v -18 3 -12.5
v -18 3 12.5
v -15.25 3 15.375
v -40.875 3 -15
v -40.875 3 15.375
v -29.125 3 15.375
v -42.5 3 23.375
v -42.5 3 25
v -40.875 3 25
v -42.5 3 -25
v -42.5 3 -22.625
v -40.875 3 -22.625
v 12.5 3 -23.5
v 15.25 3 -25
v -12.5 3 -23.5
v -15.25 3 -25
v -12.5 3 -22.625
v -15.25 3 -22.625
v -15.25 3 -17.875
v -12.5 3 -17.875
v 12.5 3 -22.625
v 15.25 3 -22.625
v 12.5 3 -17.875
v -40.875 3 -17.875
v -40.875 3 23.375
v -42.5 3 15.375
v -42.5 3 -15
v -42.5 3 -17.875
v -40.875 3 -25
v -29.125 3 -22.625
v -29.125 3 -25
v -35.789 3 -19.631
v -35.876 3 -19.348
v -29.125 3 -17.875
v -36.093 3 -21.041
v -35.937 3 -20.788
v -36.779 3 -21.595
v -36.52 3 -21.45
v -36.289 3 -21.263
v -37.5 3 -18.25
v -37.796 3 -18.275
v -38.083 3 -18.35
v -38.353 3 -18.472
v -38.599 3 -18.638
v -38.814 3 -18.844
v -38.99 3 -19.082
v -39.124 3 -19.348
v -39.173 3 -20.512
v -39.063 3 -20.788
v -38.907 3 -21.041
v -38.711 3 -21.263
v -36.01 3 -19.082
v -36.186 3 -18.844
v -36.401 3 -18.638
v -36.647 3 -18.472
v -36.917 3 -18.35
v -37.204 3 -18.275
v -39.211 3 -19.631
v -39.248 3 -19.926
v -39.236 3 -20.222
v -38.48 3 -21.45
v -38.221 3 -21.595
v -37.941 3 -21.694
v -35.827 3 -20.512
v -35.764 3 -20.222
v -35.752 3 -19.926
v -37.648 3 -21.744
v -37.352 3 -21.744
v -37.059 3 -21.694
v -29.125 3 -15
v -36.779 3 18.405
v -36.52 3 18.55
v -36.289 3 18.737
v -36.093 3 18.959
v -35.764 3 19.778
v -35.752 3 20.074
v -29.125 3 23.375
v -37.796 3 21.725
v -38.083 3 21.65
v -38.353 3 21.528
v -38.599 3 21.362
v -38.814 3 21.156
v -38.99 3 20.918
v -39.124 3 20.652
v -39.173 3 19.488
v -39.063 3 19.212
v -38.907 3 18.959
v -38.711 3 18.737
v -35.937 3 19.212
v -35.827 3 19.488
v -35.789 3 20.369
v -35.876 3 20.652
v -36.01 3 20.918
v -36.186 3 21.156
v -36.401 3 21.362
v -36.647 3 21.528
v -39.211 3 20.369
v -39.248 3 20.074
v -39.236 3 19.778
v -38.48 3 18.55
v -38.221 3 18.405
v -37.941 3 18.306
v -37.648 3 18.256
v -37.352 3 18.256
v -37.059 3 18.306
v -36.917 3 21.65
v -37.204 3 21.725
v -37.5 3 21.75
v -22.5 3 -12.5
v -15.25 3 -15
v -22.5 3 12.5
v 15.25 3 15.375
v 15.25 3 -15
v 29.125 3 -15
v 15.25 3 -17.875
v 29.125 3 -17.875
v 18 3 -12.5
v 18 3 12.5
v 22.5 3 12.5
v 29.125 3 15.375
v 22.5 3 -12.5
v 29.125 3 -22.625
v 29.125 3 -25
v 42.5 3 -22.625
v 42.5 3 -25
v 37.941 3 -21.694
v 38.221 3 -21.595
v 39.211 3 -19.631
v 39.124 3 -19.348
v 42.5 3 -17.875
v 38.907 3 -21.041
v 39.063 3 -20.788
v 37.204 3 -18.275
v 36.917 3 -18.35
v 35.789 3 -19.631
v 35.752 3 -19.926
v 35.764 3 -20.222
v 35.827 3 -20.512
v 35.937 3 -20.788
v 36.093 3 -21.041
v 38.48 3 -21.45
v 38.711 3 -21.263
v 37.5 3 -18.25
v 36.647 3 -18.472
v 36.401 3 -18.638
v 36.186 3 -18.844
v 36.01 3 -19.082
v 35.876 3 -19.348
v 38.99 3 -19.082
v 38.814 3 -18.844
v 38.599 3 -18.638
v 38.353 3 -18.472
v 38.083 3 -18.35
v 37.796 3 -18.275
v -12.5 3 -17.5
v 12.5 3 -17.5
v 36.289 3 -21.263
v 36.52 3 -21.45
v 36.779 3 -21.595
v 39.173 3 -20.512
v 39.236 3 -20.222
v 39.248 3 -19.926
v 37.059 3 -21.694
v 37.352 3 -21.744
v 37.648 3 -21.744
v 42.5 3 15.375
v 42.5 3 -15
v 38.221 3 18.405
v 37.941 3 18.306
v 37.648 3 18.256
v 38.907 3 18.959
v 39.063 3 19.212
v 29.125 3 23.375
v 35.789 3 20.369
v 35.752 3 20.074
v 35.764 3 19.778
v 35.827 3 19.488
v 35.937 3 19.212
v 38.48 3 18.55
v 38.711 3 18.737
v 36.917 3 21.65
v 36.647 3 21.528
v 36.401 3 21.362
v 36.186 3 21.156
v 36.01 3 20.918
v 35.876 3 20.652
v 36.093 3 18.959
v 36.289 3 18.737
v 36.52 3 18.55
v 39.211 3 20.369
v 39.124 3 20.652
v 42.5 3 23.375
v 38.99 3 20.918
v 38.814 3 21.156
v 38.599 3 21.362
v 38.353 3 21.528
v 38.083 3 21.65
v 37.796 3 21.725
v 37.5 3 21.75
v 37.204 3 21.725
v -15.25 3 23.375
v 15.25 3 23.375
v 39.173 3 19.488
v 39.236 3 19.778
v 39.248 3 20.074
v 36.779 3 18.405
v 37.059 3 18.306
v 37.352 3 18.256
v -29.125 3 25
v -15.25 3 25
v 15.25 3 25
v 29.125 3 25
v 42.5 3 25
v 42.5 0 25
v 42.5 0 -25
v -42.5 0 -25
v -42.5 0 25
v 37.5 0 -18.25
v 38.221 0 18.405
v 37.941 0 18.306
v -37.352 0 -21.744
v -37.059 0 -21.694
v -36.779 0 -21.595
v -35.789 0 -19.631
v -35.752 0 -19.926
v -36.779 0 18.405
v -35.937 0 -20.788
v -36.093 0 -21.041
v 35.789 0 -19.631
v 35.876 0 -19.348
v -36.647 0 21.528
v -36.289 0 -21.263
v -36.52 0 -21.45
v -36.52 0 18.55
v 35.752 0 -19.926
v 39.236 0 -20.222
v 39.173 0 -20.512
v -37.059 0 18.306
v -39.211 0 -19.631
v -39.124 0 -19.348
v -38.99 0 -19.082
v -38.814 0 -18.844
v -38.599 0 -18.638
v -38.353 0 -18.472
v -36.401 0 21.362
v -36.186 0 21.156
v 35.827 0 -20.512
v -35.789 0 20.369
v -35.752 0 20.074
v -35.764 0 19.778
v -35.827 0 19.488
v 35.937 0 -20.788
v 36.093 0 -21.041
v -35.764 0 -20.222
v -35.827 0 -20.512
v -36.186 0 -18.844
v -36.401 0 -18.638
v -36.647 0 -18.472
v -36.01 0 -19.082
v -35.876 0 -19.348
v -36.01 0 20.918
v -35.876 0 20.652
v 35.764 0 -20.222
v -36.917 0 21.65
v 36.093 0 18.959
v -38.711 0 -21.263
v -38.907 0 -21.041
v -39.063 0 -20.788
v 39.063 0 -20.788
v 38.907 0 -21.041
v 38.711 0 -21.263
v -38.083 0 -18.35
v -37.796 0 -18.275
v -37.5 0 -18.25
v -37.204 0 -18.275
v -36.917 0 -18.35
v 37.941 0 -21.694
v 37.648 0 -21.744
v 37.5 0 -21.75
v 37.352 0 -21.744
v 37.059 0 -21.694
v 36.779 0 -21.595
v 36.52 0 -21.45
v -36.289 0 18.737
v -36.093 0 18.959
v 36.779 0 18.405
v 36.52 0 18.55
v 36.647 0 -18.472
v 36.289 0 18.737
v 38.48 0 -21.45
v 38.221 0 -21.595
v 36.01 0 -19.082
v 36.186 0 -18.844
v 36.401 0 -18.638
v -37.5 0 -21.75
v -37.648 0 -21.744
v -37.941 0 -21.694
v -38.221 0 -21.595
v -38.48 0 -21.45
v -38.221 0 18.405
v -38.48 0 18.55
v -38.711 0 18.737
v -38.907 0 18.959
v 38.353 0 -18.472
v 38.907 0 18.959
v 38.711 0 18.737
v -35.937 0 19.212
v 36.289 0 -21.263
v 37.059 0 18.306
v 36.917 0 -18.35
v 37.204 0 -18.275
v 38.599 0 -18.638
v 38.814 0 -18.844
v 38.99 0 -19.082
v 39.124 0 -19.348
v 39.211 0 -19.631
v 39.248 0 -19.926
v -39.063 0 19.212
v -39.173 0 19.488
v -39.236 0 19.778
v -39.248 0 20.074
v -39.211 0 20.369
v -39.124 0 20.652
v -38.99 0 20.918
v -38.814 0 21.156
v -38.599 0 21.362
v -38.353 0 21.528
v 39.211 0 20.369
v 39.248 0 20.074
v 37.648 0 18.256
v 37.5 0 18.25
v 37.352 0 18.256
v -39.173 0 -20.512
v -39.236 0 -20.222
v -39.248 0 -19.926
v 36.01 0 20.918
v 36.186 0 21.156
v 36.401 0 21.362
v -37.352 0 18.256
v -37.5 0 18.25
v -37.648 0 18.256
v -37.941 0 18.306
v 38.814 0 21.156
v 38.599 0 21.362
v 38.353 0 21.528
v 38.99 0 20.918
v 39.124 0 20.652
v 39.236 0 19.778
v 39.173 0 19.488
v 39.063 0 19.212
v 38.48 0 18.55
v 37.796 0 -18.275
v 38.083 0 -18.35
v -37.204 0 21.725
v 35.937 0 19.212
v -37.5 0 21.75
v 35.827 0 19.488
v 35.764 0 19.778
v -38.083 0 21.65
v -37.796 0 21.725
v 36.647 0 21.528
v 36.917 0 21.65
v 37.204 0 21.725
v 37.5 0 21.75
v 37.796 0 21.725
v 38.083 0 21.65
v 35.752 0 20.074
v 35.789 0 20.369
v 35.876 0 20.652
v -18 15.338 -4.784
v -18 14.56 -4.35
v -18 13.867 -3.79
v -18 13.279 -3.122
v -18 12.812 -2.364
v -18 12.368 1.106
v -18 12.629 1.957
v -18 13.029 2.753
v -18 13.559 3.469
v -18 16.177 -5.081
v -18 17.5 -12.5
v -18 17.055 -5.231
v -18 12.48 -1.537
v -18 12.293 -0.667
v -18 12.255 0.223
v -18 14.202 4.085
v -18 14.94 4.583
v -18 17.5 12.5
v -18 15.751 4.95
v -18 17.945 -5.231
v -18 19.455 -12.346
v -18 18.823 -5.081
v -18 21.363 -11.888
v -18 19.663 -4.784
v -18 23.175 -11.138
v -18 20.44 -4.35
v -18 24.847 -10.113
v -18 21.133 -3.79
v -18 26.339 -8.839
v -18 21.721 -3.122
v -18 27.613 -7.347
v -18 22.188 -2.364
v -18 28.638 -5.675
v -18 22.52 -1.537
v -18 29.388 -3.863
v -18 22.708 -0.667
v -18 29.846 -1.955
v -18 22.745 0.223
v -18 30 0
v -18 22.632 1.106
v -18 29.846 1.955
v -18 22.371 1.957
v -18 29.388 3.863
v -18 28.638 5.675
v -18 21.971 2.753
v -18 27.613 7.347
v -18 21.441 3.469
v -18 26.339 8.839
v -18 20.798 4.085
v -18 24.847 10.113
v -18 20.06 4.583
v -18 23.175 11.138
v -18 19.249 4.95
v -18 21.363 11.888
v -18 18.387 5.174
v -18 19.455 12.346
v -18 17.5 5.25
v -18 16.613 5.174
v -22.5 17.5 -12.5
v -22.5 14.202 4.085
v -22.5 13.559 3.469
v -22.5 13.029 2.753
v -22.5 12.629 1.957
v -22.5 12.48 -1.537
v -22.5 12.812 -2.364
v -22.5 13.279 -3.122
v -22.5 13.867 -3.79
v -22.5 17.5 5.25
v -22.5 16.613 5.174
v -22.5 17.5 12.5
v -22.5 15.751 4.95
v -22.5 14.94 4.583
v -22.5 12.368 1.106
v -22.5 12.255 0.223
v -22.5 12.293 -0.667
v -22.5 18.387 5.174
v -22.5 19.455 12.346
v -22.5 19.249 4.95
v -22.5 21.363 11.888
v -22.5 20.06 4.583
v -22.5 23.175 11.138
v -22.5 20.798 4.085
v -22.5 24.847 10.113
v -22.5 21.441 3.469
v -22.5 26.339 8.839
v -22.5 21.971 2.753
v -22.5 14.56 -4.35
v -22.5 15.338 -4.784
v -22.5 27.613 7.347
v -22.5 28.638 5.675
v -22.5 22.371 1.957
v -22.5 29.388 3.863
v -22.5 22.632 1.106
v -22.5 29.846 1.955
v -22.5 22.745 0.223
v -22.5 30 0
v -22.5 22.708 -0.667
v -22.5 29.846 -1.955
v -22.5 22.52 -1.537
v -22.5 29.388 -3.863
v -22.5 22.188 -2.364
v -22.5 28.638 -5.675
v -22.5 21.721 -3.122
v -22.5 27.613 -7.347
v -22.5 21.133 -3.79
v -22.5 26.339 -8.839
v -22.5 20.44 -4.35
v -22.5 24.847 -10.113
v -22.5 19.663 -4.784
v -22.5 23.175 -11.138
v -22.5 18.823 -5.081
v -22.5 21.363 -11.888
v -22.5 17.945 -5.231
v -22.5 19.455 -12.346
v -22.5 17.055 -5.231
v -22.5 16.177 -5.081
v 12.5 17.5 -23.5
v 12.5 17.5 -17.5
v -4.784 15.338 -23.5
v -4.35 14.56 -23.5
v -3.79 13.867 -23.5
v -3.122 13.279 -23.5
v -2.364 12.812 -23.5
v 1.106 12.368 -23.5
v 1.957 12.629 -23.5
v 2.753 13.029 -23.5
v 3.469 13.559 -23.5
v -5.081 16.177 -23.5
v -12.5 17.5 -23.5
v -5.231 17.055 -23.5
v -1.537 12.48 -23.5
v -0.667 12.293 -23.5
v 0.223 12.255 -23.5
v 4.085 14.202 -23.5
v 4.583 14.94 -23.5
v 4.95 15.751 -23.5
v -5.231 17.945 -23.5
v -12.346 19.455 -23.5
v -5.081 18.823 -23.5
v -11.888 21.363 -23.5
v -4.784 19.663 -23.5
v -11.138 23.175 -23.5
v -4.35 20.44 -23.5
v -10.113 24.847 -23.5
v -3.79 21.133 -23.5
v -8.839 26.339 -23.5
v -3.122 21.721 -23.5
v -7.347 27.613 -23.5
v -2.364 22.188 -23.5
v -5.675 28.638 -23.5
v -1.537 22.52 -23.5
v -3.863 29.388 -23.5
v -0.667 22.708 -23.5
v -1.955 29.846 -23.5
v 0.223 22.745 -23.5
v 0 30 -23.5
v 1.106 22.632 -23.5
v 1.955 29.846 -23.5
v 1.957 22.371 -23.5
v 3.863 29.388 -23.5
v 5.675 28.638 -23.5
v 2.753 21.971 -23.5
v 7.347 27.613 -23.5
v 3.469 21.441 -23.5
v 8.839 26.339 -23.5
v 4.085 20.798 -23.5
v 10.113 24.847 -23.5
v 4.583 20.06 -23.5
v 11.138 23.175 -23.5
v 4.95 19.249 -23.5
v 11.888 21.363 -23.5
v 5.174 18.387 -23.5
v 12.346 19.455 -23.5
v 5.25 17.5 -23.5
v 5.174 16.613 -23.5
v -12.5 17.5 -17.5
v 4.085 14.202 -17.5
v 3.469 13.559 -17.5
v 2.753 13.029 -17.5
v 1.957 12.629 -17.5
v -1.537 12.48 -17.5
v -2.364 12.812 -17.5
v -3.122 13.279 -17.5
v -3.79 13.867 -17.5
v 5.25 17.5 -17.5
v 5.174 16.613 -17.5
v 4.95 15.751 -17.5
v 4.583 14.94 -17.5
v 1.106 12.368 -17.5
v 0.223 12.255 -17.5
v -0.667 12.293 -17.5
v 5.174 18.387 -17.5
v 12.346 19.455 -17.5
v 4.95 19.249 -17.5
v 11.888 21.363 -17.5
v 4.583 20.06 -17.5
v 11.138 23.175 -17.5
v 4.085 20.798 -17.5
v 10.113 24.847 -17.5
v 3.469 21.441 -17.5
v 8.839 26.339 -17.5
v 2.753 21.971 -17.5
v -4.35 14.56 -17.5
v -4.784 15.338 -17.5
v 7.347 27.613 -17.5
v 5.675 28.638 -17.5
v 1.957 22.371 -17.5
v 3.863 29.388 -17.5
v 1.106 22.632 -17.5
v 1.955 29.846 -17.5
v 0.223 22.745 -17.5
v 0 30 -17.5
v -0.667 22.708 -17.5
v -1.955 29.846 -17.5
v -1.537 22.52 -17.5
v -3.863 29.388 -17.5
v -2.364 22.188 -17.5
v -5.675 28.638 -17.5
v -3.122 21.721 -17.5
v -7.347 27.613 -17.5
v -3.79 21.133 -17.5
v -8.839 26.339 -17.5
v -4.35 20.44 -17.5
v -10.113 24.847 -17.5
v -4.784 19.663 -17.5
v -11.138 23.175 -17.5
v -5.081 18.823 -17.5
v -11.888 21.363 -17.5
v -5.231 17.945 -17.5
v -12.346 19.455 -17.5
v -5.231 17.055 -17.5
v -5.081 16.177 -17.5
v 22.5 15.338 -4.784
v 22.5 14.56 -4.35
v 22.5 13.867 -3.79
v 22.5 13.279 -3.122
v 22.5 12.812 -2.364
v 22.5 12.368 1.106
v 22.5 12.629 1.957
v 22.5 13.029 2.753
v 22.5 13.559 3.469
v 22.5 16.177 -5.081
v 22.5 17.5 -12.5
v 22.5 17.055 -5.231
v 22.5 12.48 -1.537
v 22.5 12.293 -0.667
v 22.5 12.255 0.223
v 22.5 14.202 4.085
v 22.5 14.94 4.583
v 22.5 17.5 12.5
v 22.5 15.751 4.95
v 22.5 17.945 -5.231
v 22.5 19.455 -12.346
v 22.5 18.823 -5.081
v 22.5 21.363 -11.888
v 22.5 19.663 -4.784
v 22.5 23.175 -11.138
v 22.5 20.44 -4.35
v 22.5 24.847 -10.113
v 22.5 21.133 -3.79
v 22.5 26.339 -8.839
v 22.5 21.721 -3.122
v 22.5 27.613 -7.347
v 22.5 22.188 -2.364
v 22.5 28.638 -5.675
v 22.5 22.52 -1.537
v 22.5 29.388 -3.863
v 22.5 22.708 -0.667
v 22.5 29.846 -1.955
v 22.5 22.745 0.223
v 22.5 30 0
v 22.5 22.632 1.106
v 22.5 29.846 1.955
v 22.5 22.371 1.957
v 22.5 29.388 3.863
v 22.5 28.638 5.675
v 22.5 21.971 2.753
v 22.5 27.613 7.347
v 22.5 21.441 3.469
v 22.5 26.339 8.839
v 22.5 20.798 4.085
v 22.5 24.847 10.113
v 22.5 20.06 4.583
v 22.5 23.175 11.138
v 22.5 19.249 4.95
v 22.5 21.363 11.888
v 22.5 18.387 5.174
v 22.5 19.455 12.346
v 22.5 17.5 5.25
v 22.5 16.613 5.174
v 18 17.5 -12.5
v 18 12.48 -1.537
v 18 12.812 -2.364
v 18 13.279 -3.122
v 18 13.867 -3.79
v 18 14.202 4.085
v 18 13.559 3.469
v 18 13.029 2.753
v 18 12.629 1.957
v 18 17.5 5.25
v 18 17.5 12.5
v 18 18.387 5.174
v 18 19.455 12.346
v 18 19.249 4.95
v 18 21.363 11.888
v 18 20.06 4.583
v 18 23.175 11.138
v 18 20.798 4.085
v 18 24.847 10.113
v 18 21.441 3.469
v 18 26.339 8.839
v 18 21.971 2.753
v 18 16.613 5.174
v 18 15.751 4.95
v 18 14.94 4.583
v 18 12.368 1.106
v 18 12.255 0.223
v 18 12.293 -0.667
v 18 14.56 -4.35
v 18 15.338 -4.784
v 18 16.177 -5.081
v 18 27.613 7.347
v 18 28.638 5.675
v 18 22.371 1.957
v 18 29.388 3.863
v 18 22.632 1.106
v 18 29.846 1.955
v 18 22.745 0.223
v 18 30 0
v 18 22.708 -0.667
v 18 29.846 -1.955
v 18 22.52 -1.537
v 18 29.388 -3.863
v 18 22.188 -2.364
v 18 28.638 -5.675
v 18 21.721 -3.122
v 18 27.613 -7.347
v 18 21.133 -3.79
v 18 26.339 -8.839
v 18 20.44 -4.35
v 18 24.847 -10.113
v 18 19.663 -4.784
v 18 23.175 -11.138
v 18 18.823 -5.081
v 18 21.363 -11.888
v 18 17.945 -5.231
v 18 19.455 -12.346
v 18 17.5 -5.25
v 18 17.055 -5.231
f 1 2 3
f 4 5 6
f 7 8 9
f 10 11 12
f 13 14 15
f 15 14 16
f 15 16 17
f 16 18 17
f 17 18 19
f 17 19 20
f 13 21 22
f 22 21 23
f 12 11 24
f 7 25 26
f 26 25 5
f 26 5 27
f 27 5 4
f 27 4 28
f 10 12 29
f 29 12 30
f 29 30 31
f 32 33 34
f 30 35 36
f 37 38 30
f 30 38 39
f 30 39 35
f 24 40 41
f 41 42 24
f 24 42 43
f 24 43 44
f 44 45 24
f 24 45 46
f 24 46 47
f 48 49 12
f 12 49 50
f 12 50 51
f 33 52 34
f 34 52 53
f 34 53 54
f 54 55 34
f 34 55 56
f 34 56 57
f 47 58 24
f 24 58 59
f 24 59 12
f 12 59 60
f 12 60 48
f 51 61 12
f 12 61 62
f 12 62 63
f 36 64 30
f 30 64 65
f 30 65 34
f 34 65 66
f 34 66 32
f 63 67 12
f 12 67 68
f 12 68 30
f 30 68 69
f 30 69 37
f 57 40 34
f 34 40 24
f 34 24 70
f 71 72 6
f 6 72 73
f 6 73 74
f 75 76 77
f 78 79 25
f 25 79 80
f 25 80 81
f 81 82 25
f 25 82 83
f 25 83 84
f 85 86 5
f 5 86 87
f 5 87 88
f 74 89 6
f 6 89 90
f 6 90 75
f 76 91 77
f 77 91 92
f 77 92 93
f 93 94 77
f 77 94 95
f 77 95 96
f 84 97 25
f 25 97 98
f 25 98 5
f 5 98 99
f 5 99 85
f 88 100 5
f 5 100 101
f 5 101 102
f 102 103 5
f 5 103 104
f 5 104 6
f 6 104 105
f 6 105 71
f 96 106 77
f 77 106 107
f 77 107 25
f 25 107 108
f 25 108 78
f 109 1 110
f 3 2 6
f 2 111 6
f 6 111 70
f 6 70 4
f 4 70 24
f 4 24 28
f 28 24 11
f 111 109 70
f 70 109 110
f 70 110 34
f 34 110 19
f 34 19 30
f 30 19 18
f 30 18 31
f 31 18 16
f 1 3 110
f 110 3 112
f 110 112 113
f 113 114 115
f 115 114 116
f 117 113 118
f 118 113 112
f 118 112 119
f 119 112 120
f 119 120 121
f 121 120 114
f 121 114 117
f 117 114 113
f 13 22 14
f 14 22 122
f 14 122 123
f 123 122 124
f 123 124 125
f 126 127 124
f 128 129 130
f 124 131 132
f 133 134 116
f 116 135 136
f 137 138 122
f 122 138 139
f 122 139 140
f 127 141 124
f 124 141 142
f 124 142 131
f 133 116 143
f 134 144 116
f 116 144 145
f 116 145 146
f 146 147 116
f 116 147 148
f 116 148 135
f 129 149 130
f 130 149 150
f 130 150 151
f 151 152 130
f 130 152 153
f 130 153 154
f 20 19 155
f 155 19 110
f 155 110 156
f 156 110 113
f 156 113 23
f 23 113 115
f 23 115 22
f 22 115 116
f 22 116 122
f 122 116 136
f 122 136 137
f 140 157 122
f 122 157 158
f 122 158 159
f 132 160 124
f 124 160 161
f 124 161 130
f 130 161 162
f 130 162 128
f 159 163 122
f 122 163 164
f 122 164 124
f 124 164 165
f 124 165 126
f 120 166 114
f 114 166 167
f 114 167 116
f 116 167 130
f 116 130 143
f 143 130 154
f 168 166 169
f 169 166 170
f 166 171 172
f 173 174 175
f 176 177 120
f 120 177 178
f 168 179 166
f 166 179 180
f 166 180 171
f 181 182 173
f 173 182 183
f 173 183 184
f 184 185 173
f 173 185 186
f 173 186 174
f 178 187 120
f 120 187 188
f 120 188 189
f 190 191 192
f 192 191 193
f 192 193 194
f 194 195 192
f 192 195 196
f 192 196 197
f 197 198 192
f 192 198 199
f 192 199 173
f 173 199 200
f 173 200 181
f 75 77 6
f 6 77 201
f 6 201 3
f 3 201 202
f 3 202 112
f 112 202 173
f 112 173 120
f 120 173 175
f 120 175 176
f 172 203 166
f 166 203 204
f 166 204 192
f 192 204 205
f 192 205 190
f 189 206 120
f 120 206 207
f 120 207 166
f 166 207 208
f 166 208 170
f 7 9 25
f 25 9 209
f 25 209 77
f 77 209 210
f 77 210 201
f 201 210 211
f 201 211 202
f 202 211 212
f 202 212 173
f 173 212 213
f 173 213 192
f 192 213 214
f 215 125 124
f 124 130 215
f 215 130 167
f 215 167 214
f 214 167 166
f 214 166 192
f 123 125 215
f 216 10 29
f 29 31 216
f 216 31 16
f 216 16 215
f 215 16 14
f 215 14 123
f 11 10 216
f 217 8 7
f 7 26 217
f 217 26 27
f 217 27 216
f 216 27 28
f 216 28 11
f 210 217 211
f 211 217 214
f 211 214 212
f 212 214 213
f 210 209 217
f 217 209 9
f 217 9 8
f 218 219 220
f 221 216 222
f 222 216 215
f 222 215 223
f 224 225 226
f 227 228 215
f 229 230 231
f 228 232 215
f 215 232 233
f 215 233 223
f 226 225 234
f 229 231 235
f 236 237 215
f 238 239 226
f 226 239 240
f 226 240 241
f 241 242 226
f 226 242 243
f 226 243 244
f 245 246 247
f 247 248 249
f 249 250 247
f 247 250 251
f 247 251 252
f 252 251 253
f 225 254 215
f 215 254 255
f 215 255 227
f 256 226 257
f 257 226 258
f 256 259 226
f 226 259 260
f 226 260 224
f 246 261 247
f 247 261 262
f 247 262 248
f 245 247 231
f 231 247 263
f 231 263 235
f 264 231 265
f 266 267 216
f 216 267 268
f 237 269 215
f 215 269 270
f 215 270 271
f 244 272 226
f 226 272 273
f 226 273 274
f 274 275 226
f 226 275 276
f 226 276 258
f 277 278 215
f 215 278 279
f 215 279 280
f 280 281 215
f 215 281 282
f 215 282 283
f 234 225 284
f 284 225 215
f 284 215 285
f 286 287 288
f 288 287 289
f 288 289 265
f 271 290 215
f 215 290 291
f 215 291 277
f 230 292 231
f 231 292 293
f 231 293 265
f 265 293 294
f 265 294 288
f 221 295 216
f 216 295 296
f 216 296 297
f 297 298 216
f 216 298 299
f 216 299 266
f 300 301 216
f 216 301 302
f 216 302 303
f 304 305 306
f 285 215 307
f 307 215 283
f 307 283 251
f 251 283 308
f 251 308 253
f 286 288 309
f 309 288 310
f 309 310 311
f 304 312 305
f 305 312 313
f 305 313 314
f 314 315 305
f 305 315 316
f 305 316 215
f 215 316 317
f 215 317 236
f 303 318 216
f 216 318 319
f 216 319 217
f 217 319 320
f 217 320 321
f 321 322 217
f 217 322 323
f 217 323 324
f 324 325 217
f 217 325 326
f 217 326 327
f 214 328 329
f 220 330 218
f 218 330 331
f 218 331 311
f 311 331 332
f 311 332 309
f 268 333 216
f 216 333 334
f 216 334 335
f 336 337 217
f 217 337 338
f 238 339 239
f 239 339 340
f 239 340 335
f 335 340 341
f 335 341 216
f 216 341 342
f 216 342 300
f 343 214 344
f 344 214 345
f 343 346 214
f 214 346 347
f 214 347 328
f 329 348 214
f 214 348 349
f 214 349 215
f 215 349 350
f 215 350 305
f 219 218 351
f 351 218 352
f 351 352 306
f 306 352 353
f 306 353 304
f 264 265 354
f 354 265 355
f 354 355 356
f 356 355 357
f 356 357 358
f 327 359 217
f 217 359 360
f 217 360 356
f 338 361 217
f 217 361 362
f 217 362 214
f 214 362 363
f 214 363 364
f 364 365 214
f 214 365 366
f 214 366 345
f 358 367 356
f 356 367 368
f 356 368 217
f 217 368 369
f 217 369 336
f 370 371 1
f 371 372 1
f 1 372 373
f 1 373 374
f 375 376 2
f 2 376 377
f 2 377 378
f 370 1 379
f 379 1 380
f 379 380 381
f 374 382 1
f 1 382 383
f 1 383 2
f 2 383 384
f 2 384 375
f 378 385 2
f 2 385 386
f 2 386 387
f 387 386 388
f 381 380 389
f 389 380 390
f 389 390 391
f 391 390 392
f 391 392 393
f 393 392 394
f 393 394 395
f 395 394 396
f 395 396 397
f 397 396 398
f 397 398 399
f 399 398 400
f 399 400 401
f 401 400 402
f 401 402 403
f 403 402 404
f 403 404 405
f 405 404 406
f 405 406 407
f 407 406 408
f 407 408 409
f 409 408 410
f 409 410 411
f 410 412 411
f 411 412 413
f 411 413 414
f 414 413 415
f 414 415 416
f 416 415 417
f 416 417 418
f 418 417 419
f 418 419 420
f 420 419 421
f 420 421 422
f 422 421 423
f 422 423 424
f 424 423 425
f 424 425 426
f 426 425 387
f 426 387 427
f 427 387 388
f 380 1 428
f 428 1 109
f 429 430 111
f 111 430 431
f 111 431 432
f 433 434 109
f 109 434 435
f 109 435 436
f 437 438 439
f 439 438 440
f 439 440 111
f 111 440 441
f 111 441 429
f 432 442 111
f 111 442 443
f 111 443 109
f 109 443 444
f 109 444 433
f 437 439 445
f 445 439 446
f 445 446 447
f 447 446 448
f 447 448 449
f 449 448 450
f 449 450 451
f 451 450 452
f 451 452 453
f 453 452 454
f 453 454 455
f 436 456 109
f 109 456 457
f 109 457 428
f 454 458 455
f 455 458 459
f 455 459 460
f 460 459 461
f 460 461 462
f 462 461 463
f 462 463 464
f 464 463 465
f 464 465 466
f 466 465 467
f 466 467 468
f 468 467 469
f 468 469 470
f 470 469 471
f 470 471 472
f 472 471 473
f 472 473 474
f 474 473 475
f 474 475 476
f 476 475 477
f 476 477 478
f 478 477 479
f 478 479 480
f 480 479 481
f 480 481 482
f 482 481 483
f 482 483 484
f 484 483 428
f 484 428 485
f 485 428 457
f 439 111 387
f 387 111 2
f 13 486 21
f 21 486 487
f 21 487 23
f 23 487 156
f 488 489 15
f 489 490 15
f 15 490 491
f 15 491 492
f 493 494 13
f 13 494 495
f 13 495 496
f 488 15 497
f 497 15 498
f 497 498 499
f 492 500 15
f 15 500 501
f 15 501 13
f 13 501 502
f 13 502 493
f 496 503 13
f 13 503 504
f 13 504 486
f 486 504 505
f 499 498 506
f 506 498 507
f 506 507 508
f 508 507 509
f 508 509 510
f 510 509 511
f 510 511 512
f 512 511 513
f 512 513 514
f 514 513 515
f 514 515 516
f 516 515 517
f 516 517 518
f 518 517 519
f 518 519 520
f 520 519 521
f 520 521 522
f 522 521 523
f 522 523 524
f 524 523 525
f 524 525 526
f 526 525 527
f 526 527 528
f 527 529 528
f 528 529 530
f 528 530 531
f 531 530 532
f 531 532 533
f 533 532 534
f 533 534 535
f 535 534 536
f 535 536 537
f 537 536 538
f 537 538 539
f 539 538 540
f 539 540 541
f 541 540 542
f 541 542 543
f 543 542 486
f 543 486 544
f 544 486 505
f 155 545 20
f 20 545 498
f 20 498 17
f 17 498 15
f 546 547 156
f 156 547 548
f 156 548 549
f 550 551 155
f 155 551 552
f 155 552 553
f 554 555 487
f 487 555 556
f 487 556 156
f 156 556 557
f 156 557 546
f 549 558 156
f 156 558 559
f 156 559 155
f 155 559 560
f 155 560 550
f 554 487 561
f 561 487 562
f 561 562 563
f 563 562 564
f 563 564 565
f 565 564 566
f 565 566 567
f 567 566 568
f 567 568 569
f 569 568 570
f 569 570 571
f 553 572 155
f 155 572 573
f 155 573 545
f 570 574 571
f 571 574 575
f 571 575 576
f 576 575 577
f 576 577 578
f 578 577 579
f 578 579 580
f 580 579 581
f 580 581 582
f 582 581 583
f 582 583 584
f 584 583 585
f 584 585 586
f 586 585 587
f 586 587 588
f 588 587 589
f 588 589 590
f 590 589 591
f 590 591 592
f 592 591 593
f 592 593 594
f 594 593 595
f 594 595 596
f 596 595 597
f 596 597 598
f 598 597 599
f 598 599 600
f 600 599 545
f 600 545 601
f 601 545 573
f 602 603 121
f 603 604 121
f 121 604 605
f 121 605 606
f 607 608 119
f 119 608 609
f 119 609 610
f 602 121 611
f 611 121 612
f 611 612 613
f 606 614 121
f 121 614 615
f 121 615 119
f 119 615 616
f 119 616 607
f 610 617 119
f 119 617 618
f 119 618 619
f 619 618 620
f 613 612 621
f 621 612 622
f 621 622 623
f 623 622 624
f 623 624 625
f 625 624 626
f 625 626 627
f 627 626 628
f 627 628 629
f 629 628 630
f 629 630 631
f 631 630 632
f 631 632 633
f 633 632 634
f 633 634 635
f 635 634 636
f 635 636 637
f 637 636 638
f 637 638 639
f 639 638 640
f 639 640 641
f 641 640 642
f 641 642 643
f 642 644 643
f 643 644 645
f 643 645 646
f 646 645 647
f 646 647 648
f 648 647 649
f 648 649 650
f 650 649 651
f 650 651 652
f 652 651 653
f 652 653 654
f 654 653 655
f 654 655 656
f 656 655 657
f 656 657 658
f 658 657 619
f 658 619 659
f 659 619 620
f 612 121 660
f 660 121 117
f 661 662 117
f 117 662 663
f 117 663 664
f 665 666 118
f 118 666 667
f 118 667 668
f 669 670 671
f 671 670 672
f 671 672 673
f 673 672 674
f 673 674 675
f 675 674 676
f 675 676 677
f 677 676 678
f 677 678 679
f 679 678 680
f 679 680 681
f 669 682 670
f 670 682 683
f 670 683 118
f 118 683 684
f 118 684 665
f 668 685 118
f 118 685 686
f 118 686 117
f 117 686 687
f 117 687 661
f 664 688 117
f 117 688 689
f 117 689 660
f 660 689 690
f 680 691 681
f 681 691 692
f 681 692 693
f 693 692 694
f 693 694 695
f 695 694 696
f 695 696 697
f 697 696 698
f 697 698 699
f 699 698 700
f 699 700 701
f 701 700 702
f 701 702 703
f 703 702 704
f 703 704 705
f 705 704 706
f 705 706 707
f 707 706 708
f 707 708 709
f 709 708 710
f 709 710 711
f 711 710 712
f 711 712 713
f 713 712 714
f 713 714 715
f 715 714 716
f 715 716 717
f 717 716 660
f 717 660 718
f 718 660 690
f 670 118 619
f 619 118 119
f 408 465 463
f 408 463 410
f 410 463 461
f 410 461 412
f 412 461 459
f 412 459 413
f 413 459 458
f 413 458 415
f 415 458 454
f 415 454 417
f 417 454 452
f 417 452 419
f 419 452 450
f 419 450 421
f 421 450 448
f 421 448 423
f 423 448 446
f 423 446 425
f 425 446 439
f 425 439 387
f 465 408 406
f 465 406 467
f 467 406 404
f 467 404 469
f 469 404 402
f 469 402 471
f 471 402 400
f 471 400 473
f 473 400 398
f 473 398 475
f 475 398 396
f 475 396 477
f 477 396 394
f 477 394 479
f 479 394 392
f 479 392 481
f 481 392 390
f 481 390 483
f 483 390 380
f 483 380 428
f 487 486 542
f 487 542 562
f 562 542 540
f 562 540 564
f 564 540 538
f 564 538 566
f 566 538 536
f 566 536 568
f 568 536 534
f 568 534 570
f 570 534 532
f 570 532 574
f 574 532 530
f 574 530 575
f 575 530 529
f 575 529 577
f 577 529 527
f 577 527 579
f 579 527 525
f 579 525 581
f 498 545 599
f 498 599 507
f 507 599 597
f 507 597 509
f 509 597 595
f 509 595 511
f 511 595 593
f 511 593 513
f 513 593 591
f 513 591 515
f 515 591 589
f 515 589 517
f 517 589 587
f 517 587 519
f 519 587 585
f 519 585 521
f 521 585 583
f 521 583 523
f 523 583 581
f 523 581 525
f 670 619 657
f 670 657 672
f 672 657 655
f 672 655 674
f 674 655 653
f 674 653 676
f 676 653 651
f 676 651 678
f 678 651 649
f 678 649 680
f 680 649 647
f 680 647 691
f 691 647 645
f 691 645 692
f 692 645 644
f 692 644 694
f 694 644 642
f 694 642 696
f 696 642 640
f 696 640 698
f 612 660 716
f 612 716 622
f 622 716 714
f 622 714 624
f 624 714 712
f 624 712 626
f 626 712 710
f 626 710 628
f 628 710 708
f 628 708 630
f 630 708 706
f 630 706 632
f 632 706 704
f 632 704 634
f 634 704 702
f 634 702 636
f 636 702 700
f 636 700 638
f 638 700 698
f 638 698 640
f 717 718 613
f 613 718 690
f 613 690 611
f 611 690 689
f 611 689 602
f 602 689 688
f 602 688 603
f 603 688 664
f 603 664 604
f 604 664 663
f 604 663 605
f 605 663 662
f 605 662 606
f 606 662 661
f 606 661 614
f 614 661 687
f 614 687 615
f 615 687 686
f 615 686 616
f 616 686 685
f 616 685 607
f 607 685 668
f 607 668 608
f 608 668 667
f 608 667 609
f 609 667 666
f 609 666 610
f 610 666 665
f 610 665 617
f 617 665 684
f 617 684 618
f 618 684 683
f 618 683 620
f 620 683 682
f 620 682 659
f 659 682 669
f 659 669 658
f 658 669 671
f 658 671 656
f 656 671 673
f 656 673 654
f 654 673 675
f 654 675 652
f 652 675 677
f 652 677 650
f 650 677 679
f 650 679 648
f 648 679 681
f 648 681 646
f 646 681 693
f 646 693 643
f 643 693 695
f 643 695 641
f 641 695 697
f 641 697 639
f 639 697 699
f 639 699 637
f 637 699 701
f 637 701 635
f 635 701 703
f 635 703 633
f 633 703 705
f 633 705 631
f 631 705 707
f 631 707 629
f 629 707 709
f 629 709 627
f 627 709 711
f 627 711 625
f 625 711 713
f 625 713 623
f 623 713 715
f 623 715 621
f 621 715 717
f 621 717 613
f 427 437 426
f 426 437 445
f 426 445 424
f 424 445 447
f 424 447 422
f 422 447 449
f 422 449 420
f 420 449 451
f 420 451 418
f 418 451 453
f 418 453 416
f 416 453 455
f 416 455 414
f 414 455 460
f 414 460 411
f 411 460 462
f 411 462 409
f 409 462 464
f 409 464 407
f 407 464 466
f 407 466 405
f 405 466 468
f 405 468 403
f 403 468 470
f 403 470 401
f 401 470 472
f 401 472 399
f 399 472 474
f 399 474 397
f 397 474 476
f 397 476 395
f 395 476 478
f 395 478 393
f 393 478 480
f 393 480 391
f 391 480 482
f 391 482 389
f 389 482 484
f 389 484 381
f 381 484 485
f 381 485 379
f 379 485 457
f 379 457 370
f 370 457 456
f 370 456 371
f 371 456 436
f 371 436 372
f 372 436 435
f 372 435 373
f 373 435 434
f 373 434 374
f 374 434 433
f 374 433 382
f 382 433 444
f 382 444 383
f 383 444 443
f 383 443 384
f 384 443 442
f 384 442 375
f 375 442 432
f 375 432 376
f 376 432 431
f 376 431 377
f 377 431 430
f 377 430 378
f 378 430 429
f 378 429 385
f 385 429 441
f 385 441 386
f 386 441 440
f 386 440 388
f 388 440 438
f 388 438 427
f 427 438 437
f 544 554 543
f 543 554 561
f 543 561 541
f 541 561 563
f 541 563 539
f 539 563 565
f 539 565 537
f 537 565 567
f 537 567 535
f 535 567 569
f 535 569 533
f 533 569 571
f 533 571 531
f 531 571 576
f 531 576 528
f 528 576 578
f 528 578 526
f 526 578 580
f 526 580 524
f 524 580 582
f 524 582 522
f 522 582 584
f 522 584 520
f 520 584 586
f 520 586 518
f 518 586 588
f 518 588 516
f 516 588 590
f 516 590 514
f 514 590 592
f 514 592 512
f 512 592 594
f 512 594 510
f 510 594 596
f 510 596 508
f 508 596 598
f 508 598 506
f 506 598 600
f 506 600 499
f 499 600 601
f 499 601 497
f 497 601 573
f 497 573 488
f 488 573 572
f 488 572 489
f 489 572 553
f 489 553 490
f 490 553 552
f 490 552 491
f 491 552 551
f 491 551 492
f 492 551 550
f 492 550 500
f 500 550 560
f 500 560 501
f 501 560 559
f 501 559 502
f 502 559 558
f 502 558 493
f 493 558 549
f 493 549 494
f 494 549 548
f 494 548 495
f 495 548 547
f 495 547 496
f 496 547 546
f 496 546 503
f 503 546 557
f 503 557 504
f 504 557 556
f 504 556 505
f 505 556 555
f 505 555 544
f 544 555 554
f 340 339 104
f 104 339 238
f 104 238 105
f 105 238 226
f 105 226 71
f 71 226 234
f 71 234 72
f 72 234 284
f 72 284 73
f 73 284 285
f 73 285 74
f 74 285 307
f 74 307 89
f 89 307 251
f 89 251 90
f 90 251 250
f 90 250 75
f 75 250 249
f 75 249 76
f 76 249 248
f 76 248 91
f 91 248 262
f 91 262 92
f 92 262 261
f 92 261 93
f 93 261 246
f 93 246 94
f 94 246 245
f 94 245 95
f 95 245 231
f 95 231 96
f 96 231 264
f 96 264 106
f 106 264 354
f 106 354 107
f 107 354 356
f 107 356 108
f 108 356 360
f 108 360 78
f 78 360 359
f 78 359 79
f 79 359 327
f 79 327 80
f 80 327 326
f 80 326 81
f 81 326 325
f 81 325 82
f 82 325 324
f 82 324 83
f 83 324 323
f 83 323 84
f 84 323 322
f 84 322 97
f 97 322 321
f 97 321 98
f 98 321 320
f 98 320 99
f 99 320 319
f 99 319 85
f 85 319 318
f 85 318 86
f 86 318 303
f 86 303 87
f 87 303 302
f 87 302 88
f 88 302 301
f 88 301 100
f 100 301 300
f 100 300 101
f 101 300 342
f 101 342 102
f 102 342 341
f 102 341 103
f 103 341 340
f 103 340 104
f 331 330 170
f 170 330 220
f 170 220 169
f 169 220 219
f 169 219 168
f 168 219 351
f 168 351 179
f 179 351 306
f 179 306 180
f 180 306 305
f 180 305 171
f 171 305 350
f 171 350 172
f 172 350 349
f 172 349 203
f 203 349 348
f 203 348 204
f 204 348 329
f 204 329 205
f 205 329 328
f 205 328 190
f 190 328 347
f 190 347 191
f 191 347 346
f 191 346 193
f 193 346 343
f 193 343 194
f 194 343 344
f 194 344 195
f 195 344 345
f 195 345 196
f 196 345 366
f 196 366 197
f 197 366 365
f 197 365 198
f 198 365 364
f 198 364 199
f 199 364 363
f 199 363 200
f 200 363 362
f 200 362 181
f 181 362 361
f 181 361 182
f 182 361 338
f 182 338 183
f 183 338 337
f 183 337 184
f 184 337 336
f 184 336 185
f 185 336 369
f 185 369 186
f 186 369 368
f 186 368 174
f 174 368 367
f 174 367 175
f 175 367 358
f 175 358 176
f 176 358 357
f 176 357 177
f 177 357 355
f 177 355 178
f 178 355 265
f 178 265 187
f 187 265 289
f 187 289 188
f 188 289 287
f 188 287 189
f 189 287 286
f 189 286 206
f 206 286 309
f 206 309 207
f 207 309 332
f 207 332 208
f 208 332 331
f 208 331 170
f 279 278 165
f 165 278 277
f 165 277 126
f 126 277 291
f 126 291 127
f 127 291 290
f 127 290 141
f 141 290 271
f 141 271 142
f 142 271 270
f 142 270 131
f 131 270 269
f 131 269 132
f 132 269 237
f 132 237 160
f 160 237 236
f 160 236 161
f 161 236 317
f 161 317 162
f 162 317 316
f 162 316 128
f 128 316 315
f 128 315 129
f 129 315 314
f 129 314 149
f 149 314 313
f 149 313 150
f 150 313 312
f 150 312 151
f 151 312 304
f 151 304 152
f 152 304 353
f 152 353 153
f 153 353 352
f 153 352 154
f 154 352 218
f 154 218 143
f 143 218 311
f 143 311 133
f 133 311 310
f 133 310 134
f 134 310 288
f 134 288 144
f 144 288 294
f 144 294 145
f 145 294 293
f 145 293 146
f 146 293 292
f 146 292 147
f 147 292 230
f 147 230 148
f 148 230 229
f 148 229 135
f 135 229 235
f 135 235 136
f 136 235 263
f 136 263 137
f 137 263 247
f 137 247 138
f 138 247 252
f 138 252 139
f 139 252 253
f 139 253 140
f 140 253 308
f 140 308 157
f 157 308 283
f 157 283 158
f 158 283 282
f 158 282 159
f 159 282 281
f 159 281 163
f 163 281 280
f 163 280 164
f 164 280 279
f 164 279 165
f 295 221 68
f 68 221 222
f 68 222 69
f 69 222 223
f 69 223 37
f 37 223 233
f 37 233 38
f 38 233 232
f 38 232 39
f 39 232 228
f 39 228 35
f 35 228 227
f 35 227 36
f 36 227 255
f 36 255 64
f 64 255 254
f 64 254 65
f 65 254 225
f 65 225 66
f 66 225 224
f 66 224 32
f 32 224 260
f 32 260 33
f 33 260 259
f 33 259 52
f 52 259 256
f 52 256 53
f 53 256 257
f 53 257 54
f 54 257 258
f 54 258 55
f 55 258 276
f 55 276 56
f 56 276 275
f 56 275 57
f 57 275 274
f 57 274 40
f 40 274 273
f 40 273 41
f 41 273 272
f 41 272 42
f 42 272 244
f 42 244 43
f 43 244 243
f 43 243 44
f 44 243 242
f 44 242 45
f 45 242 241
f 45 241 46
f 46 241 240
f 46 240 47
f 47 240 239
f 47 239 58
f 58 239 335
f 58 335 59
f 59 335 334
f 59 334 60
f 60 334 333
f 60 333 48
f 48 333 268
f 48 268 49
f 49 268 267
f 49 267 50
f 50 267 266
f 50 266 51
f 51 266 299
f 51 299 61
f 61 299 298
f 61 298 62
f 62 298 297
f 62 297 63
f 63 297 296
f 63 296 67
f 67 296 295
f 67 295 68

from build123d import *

# Parameters (mm, degrees)
SKICA1_W                          = 85
SKICA1_H                          = 50
P_IDAT_VYSUNUT_M1_DEPTH           = 3
SKICA2_W                          = 4.5
SKICA2_H                          = 25
SKICA2_W_2                        = 25
SKICA2_H_2                        = 6
P_IDAT_VYSUNUT_M2_DEPTH           = 27
ZAOBLIT1_R                        = 12.5
SKICA3_R                          = 5.25
ODEBRAT_VYSUNUT_M1_DEPTH          = 76.828754441
SKICA4_R                          = 5.25
ODEBRAT_VYSUNUT_M2_DEPTH          = 68.175144213
D_RY_PRO_KOL_K_VELIKOST_MM1_D     = 3.5
D_RY_PRO_KOL_K_VELIKOST_MM1_DEPTH = 10
D_RY_PRO_KOL_K_VELIKOST_MM1_TIP   = 1.051506083


with BuildPart() as part:
    # Skica1 → Přidat vysunutím1 (new body)
    with BuildSketch(Plane(origin=(0, 0, 0), x_dir=(1, 0, 0), z_dir=(0, 1, 0))):
        Rectangle(SKICA1_W, SKICA1_H)
    extrude(amount=P_IDAT_VYSUNUT_M1_DEPTH)

    # Skica2 → Přidat vysunutím2 (add)
    with BuildSketch(Plane(origin=(0, 3, 0), x_dir=(1, 0, 0), z_dir=(0, 1, 0))):
        with Locations((-20.25, 0)):
            Rectangle(SKICA2_W, SKICA2_H)
        with Locations((0, 20.5)):
            Rectangle(SKICA2_W_2, SKICA2_H_2)
        with Locations((20.25, 0)):
            Rectangle(SKICA2_W, SKICA2_H)
    extrude(amount=P_IDAT_VYSUNUT_M2_DEPTH)

    # Zaoblit1
    zaoblit1_edges = [part.edges().sort_by_distance(p)[0] for p in [
        (-20.25, 30, -12.5),
        (-20.25, 30, 12.5),
        (-12.5, 30, -20.5),
        (12.5, 30, -20.5),
        (20.25, 30, -12.5),
        (20.25, 30, 12.5),
    ]]
    fillet(zaoblit1_edges, radius=ZAOBLIT1_R - 0.0001)  # a hair under: the kernel refuses the full size

    # Skica3 → Odebrat vysunutím1 (cut, through all)
    with BuildSketch(Plane.ZY.offset(22.5)):
        with Locations((0, 17.5)):
            Circle(SKICA3_R)
    extrude(amount=-ODEBRAT_VYSUNUT_M1_DEPTH, mode=Mode.SUBTRACT)

    # Skica4 → Odebrat vysunutím2 (cut, through all)
    with BuildSketch(Plane.XY.offset(-17.5)):
        with Locations((0, 17.5)):
            Circle(SKICA4_R)
    extrude(amount=-ODEBRAT_VYSUNUT_M2_DEPTH, mode=Mode.SUBTRACT)

    # Díry pro kolík, velikost mm1
    with Locations(Plane(origin=(0, 3, 0), x_dir=(1, 0, 0), z_dir=(0, 1, 0))):
        with Locations((-37.5, 20), (37.5, 20), (37.5, -20), (-37.5, -20)):
            Hole(D_RY_PRO_KOL_K_VELIKOST_MM1_D / 2, depth=D_RY_PRO_KOL_K_VELIKOST_MM1_DEPTH)
            with Locations((0, 0, -(D_RY_PRO_KOL_K_VELIKOST_MM1_DEPTH + D_RY_PRO_KOL_K_VELIKOST_MM1_TIP / 2))):  # 118° drill point
                Cone(0, D_RY_PRO_KOL_K_VELIKOST_MM1_D / 2, D_RY_PRO_KOL_K_VELIKOST_MM1_TIP, mode=Mode.SUBTRACT)


solid = part.part
